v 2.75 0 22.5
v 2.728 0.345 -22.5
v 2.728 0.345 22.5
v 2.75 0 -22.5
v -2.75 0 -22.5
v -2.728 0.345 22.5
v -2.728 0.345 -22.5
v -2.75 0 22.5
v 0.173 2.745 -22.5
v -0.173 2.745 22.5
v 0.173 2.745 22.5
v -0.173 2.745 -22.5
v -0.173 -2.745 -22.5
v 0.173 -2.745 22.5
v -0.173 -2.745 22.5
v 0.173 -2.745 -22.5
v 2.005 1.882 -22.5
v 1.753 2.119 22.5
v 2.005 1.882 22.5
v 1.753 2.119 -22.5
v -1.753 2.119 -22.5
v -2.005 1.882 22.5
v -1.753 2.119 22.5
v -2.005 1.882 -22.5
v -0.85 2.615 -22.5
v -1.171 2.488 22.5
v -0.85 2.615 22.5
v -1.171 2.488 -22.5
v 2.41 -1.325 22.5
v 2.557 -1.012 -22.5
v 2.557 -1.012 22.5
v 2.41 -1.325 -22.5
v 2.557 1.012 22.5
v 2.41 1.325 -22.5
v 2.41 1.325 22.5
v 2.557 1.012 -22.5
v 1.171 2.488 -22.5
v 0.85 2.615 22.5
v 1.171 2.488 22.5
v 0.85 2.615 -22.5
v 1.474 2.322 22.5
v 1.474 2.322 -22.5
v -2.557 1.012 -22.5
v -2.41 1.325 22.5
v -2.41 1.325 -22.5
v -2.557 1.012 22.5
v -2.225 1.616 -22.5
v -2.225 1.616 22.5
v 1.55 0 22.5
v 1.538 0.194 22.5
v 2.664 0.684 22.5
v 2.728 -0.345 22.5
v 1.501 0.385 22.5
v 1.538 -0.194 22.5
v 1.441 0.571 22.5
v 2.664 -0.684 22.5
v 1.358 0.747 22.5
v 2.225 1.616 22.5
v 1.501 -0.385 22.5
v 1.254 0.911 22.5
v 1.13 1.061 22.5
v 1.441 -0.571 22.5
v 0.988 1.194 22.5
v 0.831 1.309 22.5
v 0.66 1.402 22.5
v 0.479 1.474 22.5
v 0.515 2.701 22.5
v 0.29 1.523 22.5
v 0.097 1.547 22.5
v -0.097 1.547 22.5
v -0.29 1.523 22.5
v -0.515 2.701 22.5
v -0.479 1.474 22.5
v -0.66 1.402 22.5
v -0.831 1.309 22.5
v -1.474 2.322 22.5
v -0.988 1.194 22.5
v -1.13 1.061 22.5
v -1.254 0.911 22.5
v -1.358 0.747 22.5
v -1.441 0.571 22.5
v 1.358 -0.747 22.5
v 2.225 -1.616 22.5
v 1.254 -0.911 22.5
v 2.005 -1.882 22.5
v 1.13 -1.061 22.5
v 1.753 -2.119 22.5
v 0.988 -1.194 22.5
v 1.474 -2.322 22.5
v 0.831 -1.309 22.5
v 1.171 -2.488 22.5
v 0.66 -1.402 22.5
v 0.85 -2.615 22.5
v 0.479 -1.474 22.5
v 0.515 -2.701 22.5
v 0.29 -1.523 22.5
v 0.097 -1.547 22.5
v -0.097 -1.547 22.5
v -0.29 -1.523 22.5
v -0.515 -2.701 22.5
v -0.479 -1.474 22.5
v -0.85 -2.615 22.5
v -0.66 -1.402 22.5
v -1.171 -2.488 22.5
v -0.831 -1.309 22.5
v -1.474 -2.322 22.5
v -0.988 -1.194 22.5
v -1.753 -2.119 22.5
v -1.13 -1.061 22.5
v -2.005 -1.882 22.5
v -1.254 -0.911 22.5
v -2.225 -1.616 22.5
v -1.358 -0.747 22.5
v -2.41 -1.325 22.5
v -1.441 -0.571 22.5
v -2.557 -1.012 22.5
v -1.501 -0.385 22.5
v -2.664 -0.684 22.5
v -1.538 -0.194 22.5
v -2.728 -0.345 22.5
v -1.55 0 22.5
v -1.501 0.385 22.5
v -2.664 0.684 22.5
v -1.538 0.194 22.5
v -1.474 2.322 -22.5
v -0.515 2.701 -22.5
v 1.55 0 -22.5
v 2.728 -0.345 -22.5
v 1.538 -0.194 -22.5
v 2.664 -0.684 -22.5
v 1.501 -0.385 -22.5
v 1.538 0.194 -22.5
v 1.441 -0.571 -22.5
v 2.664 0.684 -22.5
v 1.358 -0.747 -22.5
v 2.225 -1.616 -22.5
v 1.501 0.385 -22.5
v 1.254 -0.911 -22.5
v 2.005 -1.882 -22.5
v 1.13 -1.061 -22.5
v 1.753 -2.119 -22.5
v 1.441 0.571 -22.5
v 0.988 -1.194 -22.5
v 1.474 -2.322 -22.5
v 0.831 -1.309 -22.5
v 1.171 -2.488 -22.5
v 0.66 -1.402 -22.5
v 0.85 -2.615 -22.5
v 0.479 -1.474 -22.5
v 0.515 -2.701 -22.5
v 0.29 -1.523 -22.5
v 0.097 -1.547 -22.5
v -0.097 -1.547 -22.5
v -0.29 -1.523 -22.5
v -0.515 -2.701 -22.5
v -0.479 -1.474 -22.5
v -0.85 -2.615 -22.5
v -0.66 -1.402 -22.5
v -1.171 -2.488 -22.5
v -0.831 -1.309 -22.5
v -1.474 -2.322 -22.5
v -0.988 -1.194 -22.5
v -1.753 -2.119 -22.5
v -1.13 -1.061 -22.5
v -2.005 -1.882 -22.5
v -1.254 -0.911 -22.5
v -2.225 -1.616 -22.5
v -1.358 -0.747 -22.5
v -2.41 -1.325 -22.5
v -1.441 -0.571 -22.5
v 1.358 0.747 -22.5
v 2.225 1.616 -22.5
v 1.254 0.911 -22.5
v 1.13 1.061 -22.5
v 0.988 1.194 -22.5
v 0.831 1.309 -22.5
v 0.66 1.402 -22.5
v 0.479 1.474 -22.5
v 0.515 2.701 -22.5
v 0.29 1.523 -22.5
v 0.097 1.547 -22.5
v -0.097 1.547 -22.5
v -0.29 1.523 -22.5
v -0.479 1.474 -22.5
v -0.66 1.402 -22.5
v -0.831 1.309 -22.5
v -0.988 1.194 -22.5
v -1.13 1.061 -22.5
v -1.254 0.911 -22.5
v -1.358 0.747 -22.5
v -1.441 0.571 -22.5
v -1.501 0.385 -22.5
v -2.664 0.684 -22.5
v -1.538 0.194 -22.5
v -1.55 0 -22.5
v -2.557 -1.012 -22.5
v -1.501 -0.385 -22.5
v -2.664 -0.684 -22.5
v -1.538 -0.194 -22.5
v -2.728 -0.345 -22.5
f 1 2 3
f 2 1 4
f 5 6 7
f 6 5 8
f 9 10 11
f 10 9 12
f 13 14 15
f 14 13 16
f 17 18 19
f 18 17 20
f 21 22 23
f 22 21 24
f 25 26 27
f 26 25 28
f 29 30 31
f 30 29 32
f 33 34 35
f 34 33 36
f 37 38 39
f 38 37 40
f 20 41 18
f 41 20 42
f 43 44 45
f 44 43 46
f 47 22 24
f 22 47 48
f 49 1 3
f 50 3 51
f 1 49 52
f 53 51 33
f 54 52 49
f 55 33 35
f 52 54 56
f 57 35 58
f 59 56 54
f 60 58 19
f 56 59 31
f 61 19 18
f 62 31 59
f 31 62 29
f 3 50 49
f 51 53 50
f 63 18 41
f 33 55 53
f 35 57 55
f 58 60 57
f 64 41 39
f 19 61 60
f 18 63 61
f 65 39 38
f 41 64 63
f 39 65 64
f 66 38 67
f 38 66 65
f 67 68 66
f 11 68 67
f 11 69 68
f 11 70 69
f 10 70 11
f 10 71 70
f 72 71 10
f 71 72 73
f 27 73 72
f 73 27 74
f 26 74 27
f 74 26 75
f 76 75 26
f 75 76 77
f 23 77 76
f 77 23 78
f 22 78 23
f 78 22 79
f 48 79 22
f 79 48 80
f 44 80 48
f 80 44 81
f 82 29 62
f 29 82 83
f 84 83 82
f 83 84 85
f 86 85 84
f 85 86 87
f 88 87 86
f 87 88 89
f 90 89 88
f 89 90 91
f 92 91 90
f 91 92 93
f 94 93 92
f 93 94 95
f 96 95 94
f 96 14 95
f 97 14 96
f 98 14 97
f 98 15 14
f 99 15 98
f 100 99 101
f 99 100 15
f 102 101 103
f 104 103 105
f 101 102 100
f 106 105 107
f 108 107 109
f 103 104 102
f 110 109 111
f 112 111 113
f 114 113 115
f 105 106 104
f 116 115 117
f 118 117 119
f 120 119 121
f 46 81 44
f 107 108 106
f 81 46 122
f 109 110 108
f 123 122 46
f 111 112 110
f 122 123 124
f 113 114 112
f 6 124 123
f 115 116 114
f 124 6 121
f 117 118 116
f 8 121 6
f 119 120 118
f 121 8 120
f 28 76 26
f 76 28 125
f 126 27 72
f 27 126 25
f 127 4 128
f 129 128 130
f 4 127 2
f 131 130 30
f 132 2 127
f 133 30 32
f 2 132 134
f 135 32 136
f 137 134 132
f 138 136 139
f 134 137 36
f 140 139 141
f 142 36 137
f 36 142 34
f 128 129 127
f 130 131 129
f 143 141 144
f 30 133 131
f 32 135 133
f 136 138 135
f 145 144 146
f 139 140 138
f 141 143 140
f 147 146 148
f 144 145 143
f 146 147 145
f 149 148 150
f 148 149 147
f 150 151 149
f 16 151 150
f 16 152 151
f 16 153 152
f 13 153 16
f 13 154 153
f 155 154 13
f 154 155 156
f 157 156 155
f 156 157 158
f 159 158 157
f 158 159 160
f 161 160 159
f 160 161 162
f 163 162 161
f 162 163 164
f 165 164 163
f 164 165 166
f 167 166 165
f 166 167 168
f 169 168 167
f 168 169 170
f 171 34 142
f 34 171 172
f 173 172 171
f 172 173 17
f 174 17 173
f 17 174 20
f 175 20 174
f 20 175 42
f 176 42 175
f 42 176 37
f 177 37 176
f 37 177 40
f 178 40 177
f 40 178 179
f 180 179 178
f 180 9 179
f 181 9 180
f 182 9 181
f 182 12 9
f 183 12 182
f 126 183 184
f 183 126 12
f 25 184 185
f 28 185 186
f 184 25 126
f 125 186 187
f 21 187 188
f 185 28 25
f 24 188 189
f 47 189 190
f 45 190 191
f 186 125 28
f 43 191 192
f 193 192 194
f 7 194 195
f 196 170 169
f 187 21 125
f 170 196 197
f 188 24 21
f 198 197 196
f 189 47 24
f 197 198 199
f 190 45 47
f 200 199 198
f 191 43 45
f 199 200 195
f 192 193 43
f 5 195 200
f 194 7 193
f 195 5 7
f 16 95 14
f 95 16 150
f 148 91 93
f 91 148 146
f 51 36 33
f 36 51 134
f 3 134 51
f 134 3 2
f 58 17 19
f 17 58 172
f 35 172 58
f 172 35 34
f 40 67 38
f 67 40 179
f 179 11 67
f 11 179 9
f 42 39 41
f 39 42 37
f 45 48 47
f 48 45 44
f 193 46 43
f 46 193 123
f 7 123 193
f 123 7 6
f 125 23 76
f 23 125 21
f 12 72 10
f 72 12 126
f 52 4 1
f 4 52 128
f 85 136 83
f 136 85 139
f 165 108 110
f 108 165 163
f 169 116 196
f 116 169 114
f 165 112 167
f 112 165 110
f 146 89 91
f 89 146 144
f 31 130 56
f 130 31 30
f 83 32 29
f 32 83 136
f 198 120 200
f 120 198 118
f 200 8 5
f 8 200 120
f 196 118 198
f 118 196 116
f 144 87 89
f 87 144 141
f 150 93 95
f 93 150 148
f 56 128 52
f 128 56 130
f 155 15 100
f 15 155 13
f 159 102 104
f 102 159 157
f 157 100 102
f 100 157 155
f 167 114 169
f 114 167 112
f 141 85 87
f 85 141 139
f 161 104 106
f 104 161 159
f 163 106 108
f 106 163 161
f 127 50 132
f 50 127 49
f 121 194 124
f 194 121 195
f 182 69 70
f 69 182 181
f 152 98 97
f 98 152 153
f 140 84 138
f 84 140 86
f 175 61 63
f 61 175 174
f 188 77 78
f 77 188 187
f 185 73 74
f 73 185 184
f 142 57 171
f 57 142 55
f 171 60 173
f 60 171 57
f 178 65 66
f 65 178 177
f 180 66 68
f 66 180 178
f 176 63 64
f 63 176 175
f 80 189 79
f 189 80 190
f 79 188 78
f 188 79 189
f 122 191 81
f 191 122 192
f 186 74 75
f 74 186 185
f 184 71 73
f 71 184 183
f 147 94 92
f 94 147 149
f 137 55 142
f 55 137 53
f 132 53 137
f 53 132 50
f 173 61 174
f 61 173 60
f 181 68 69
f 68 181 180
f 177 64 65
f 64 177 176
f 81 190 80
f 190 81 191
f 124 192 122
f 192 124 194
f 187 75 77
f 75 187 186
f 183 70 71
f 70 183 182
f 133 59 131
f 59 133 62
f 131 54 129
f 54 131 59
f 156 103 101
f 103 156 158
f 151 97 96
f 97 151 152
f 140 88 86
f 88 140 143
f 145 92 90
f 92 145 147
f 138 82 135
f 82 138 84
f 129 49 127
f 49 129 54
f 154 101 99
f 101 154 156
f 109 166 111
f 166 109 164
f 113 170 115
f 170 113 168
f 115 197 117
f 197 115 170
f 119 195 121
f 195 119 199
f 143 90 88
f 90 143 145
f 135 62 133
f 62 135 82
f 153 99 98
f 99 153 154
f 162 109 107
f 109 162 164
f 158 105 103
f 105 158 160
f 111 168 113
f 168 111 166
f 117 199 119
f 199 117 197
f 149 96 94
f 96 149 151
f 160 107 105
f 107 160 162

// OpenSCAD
$fn = 50;


difference() {
	union() {
		translate(v = [0, 0, -22.5000000000]) {
			cylinder(h = 45, r = 2.7500000000);
		}
	}
	union() {
		translate(v = [0, 0, -100.0000000000]) {
			cylinder(h = 200, r = 1.5500000000);
		}
	}
}
